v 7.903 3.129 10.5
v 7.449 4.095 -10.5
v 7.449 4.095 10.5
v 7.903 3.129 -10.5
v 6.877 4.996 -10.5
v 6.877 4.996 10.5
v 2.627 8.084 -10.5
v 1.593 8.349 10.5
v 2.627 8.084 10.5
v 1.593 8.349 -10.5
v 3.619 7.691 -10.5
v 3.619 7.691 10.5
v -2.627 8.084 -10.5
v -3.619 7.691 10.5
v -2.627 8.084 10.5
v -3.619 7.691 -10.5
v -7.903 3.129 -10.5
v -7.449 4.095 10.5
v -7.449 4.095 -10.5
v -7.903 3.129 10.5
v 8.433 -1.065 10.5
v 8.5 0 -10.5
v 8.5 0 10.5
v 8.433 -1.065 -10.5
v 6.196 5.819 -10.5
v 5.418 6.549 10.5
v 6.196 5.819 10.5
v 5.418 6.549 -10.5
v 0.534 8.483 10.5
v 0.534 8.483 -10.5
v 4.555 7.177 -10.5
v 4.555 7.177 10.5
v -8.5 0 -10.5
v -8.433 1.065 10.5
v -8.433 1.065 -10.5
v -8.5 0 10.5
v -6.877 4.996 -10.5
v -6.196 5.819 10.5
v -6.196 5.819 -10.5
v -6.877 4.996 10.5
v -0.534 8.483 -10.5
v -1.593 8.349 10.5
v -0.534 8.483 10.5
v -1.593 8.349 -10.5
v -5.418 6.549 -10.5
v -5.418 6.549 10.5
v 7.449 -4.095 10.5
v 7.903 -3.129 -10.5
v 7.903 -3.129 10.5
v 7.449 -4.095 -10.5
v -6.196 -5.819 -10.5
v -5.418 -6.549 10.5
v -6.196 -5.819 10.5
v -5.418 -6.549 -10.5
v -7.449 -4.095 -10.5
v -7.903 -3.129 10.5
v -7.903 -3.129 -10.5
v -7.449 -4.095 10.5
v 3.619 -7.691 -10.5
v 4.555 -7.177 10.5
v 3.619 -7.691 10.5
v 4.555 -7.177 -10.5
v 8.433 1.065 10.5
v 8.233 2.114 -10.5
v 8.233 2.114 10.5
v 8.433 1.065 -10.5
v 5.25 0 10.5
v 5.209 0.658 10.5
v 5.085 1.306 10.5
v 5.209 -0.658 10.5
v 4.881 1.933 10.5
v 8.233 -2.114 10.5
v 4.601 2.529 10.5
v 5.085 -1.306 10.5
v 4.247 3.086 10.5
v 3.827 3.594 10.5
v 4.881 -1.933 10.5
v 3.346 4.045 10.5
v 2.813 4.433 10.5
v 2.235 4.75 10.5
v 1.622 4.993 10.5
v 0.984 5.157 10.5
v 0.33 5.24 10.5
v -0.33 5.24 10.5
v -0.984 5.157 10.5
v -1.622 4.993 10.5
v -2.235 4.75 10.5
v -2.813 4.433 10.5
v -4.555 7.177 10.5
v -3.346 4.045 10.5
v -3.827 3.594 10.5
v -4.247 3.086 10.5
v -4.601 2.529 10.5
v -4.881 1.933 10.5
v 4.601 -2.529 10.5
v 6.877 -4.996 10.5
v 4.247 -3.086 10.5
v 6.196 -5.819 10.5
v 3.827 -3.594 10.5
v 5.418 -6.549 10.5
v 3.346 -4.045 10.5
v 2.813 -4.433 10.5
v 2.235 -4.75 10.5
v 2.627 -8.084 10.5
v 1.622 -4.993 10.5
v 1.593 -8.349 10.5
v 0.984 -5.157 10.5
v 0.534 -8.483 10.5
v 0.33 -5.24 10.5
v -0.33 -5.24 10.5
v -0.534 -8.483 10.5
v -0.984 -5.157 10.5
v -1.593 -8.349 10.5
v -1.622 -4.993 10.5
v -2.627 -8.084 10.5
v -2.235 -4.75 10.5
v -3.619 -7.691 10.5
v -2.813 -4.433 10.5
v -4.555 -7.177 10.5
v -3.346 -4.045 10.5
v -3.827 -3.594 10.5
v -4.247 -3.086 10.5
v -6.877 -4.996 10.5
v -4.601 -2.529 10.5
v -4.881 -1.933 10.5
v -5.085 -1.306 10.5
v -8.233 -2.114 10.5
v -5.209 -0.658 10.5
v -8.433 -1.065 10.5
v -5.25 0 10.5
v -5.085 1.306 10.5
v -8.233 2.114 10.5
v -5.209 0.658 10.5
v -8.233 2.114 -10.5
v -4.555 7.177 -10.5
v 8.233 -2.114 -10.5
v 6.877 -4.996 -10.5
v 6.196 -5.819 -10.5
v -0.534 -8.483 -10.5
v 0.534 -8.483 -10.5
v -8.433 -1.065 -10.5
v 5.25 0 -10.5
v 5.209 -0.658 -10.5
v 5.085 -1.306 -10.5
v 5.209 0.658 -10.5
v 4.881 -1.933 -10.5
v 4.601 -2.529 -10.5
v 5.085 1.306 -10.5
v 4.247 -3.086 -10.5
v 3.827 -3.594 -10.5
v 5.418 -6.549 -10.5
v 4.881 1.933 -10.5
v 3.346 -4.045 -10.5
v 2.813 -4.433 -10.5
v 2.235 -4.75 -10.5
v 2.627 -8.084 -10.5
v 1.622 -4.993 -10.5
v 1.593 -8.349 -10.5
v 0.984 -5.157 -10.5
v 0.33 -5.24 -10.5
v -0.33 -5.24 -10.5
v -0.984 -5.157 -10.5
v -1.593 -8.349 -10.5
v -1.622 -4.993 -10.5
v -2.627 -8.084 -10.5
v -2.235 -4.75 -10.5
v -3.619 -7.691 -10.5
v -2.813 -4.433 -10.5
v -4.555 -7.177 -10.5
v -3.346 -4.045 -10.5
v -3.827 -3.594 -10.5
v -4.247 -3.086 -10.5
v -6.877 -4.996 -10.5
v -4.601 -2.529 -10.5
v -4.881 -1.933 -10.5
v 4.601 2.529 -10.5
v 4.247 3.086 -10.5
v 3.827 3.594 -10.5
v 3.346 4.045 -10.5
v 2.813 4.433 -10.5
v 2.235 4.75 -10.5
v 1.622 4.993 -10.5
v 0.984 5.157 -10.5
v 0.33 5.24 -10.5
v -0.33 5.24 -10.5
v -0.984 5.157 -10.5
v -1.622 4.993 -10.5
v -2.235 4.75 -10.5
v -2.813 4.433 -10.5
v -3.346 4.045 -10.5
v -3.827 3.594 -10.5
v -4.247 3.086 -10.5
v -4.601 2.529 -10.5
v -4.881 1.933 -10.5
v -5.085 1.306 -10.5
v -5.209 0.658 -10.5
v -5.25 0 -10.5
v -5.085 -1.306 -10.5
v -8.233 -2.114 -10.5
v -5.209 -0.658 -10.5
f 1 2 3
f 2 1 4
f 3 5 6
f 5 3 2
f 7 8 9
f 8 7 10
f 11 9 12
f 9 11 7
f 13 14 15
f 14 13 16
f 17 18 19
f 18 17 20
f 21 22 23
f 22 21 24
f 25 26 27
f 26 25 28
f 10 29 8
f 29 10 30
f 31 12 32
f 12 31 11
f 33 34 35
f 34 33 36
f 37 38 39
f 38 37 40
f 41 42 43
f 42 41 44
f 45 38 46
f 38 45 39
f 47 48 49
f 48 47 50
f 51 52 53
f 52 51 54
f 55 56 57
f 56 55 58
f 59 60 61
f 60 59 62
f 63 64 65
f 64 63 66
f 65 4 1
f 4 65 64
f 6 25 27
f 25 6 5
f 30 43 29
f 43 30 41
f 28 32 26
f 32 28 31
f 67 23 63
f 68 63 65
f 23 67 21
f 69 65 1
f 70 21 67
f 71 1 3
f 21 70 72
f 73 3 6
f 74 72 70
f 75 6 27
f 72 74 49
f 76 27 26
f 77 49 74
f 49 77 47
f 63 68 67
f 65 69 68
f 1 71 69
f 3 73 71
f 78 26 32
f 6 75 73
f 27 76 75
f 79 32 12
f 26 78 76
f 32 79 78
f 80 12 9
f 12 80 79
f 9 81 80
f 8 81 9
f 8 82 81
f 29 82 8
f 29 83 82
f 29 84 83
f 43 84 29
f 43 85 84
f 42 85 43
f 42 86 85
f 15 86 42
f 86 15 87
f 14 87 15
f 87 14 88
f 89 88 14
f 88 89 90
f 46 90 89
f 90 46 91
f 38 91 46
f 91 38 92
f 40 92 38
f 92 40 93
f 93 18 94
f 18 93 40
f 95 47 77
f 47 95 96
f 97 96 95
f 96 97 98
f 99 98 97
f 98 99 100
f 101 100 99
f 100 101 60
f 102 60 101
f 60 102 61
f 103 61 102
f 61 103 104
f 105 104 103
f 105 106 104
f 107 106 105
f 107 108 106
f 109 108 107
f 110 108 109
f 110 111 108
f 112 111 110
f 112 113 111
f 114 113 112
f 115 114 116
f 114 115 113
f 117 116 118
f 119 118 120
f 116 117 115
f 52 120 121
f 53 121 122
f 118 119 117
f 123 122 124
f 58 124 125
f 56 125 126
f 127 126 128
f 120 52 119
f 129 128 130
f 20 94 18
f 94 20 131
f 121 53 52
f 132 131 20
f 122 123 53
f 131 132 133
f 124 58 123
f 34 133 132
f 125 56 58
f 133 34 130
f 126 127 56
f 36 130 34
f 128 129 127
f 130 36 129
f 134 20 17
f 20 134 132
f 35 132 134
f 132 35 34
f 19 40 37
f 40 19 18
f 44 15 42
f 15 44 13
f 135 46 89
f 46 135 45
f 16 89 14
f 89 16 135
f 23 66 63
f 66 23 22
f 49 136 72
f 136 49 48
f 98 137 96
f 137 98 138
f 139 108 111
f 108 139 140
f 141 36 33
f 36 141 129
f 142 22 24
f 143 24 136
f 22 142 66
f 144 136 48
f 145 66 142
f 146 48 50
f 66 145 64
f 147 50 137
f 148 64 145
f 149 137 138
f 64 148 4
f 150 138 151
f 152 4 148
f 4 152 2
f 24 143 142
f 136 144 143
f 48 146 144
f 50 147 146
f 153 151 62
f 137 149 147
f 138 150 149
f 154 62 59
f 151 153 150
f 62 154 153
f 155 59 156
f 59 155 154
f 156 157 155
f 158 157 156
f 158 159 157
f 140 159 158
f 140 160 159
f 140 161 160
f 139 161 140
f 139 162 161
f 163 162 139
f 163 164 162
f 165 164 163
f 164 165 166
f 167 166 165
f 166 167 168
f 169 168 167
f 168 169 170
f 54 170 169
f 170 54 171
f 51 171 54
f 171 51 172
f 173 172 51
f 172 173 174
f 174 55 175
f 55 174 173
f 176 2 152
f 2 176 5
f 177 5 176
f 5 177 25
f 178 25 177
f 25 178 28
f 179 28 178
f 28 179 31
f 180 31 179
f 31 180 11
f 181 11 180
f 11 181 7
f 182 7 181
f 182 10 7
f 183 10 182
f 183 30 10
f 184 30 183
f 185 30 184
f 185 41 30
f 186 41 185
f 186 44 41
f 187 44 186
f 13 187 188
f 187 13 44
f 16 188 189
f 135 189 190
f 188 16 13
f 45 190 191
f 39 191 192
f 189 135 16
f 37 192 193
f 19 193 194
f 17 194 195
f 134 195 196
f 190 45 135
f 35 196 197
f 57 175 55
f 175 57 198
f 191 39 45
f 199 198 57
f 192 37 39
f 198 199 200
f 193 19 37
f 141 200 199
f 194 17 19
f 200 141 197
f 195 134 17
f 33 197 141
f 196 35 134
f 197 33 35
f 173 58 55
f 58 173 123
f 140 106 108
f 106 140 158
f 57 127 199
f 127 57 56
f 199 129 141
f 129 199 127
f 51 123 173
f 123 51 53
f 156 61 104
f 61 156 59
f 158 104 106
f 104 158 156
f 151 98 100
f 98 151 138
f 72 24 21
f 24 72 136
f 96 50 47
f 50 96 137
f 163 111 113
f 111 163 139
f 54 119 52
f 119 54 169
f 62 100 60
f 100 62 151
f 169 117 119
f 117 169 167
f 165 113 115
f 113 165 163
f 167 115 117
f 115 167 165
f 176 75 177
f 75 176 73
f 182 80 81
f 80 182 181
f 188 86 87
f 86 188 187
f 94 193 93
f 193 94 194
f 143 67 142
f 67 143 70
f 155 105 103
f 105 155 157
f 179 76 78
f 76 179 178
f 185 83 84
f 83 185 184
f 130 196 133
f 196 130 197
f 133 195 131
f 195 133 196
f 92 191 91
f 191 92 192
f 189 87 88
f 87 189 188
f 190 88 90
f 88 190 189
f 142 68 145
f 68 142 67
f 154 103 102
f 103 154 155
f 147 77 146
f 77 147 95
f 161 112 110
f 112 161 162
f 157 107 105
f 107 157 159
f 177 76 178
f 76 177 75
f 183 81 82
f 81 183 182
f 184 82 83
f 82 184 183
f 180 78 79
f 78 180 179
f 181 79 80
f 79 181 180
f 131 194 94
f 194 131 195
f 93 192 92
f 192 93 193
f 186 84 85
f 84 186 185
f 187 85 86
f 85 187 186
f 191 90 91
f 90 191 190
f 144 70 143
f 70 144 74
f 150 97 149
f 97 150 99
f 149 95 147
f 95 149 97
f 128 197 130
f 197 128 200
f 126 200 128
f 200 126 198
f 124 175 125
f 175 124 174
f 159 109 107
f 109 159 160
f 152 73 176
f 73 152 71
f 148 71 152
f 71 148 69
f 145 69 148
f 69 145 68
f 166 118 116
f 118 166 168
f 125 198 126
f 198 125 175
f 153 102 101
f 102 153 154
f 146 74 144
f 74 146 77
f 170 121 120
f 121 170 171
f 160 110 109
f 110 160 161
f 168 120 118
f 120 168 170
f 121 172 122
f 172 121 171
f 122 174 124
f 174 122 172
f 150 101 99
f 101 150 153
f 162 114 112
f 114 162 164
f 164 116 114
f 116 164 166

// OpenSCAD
$fn = 50;


difference() {
	union() {
		translate(v = [0, 0, -10.5000000000]) {
			cylinder(h = 21, r = 8.5000000000);
		}
	}
	union() {
		translate(v = [0, 0, -100.0000000000]) {
			cylinder(h = 200, r = 5.2500000000);
		}
	}
}
